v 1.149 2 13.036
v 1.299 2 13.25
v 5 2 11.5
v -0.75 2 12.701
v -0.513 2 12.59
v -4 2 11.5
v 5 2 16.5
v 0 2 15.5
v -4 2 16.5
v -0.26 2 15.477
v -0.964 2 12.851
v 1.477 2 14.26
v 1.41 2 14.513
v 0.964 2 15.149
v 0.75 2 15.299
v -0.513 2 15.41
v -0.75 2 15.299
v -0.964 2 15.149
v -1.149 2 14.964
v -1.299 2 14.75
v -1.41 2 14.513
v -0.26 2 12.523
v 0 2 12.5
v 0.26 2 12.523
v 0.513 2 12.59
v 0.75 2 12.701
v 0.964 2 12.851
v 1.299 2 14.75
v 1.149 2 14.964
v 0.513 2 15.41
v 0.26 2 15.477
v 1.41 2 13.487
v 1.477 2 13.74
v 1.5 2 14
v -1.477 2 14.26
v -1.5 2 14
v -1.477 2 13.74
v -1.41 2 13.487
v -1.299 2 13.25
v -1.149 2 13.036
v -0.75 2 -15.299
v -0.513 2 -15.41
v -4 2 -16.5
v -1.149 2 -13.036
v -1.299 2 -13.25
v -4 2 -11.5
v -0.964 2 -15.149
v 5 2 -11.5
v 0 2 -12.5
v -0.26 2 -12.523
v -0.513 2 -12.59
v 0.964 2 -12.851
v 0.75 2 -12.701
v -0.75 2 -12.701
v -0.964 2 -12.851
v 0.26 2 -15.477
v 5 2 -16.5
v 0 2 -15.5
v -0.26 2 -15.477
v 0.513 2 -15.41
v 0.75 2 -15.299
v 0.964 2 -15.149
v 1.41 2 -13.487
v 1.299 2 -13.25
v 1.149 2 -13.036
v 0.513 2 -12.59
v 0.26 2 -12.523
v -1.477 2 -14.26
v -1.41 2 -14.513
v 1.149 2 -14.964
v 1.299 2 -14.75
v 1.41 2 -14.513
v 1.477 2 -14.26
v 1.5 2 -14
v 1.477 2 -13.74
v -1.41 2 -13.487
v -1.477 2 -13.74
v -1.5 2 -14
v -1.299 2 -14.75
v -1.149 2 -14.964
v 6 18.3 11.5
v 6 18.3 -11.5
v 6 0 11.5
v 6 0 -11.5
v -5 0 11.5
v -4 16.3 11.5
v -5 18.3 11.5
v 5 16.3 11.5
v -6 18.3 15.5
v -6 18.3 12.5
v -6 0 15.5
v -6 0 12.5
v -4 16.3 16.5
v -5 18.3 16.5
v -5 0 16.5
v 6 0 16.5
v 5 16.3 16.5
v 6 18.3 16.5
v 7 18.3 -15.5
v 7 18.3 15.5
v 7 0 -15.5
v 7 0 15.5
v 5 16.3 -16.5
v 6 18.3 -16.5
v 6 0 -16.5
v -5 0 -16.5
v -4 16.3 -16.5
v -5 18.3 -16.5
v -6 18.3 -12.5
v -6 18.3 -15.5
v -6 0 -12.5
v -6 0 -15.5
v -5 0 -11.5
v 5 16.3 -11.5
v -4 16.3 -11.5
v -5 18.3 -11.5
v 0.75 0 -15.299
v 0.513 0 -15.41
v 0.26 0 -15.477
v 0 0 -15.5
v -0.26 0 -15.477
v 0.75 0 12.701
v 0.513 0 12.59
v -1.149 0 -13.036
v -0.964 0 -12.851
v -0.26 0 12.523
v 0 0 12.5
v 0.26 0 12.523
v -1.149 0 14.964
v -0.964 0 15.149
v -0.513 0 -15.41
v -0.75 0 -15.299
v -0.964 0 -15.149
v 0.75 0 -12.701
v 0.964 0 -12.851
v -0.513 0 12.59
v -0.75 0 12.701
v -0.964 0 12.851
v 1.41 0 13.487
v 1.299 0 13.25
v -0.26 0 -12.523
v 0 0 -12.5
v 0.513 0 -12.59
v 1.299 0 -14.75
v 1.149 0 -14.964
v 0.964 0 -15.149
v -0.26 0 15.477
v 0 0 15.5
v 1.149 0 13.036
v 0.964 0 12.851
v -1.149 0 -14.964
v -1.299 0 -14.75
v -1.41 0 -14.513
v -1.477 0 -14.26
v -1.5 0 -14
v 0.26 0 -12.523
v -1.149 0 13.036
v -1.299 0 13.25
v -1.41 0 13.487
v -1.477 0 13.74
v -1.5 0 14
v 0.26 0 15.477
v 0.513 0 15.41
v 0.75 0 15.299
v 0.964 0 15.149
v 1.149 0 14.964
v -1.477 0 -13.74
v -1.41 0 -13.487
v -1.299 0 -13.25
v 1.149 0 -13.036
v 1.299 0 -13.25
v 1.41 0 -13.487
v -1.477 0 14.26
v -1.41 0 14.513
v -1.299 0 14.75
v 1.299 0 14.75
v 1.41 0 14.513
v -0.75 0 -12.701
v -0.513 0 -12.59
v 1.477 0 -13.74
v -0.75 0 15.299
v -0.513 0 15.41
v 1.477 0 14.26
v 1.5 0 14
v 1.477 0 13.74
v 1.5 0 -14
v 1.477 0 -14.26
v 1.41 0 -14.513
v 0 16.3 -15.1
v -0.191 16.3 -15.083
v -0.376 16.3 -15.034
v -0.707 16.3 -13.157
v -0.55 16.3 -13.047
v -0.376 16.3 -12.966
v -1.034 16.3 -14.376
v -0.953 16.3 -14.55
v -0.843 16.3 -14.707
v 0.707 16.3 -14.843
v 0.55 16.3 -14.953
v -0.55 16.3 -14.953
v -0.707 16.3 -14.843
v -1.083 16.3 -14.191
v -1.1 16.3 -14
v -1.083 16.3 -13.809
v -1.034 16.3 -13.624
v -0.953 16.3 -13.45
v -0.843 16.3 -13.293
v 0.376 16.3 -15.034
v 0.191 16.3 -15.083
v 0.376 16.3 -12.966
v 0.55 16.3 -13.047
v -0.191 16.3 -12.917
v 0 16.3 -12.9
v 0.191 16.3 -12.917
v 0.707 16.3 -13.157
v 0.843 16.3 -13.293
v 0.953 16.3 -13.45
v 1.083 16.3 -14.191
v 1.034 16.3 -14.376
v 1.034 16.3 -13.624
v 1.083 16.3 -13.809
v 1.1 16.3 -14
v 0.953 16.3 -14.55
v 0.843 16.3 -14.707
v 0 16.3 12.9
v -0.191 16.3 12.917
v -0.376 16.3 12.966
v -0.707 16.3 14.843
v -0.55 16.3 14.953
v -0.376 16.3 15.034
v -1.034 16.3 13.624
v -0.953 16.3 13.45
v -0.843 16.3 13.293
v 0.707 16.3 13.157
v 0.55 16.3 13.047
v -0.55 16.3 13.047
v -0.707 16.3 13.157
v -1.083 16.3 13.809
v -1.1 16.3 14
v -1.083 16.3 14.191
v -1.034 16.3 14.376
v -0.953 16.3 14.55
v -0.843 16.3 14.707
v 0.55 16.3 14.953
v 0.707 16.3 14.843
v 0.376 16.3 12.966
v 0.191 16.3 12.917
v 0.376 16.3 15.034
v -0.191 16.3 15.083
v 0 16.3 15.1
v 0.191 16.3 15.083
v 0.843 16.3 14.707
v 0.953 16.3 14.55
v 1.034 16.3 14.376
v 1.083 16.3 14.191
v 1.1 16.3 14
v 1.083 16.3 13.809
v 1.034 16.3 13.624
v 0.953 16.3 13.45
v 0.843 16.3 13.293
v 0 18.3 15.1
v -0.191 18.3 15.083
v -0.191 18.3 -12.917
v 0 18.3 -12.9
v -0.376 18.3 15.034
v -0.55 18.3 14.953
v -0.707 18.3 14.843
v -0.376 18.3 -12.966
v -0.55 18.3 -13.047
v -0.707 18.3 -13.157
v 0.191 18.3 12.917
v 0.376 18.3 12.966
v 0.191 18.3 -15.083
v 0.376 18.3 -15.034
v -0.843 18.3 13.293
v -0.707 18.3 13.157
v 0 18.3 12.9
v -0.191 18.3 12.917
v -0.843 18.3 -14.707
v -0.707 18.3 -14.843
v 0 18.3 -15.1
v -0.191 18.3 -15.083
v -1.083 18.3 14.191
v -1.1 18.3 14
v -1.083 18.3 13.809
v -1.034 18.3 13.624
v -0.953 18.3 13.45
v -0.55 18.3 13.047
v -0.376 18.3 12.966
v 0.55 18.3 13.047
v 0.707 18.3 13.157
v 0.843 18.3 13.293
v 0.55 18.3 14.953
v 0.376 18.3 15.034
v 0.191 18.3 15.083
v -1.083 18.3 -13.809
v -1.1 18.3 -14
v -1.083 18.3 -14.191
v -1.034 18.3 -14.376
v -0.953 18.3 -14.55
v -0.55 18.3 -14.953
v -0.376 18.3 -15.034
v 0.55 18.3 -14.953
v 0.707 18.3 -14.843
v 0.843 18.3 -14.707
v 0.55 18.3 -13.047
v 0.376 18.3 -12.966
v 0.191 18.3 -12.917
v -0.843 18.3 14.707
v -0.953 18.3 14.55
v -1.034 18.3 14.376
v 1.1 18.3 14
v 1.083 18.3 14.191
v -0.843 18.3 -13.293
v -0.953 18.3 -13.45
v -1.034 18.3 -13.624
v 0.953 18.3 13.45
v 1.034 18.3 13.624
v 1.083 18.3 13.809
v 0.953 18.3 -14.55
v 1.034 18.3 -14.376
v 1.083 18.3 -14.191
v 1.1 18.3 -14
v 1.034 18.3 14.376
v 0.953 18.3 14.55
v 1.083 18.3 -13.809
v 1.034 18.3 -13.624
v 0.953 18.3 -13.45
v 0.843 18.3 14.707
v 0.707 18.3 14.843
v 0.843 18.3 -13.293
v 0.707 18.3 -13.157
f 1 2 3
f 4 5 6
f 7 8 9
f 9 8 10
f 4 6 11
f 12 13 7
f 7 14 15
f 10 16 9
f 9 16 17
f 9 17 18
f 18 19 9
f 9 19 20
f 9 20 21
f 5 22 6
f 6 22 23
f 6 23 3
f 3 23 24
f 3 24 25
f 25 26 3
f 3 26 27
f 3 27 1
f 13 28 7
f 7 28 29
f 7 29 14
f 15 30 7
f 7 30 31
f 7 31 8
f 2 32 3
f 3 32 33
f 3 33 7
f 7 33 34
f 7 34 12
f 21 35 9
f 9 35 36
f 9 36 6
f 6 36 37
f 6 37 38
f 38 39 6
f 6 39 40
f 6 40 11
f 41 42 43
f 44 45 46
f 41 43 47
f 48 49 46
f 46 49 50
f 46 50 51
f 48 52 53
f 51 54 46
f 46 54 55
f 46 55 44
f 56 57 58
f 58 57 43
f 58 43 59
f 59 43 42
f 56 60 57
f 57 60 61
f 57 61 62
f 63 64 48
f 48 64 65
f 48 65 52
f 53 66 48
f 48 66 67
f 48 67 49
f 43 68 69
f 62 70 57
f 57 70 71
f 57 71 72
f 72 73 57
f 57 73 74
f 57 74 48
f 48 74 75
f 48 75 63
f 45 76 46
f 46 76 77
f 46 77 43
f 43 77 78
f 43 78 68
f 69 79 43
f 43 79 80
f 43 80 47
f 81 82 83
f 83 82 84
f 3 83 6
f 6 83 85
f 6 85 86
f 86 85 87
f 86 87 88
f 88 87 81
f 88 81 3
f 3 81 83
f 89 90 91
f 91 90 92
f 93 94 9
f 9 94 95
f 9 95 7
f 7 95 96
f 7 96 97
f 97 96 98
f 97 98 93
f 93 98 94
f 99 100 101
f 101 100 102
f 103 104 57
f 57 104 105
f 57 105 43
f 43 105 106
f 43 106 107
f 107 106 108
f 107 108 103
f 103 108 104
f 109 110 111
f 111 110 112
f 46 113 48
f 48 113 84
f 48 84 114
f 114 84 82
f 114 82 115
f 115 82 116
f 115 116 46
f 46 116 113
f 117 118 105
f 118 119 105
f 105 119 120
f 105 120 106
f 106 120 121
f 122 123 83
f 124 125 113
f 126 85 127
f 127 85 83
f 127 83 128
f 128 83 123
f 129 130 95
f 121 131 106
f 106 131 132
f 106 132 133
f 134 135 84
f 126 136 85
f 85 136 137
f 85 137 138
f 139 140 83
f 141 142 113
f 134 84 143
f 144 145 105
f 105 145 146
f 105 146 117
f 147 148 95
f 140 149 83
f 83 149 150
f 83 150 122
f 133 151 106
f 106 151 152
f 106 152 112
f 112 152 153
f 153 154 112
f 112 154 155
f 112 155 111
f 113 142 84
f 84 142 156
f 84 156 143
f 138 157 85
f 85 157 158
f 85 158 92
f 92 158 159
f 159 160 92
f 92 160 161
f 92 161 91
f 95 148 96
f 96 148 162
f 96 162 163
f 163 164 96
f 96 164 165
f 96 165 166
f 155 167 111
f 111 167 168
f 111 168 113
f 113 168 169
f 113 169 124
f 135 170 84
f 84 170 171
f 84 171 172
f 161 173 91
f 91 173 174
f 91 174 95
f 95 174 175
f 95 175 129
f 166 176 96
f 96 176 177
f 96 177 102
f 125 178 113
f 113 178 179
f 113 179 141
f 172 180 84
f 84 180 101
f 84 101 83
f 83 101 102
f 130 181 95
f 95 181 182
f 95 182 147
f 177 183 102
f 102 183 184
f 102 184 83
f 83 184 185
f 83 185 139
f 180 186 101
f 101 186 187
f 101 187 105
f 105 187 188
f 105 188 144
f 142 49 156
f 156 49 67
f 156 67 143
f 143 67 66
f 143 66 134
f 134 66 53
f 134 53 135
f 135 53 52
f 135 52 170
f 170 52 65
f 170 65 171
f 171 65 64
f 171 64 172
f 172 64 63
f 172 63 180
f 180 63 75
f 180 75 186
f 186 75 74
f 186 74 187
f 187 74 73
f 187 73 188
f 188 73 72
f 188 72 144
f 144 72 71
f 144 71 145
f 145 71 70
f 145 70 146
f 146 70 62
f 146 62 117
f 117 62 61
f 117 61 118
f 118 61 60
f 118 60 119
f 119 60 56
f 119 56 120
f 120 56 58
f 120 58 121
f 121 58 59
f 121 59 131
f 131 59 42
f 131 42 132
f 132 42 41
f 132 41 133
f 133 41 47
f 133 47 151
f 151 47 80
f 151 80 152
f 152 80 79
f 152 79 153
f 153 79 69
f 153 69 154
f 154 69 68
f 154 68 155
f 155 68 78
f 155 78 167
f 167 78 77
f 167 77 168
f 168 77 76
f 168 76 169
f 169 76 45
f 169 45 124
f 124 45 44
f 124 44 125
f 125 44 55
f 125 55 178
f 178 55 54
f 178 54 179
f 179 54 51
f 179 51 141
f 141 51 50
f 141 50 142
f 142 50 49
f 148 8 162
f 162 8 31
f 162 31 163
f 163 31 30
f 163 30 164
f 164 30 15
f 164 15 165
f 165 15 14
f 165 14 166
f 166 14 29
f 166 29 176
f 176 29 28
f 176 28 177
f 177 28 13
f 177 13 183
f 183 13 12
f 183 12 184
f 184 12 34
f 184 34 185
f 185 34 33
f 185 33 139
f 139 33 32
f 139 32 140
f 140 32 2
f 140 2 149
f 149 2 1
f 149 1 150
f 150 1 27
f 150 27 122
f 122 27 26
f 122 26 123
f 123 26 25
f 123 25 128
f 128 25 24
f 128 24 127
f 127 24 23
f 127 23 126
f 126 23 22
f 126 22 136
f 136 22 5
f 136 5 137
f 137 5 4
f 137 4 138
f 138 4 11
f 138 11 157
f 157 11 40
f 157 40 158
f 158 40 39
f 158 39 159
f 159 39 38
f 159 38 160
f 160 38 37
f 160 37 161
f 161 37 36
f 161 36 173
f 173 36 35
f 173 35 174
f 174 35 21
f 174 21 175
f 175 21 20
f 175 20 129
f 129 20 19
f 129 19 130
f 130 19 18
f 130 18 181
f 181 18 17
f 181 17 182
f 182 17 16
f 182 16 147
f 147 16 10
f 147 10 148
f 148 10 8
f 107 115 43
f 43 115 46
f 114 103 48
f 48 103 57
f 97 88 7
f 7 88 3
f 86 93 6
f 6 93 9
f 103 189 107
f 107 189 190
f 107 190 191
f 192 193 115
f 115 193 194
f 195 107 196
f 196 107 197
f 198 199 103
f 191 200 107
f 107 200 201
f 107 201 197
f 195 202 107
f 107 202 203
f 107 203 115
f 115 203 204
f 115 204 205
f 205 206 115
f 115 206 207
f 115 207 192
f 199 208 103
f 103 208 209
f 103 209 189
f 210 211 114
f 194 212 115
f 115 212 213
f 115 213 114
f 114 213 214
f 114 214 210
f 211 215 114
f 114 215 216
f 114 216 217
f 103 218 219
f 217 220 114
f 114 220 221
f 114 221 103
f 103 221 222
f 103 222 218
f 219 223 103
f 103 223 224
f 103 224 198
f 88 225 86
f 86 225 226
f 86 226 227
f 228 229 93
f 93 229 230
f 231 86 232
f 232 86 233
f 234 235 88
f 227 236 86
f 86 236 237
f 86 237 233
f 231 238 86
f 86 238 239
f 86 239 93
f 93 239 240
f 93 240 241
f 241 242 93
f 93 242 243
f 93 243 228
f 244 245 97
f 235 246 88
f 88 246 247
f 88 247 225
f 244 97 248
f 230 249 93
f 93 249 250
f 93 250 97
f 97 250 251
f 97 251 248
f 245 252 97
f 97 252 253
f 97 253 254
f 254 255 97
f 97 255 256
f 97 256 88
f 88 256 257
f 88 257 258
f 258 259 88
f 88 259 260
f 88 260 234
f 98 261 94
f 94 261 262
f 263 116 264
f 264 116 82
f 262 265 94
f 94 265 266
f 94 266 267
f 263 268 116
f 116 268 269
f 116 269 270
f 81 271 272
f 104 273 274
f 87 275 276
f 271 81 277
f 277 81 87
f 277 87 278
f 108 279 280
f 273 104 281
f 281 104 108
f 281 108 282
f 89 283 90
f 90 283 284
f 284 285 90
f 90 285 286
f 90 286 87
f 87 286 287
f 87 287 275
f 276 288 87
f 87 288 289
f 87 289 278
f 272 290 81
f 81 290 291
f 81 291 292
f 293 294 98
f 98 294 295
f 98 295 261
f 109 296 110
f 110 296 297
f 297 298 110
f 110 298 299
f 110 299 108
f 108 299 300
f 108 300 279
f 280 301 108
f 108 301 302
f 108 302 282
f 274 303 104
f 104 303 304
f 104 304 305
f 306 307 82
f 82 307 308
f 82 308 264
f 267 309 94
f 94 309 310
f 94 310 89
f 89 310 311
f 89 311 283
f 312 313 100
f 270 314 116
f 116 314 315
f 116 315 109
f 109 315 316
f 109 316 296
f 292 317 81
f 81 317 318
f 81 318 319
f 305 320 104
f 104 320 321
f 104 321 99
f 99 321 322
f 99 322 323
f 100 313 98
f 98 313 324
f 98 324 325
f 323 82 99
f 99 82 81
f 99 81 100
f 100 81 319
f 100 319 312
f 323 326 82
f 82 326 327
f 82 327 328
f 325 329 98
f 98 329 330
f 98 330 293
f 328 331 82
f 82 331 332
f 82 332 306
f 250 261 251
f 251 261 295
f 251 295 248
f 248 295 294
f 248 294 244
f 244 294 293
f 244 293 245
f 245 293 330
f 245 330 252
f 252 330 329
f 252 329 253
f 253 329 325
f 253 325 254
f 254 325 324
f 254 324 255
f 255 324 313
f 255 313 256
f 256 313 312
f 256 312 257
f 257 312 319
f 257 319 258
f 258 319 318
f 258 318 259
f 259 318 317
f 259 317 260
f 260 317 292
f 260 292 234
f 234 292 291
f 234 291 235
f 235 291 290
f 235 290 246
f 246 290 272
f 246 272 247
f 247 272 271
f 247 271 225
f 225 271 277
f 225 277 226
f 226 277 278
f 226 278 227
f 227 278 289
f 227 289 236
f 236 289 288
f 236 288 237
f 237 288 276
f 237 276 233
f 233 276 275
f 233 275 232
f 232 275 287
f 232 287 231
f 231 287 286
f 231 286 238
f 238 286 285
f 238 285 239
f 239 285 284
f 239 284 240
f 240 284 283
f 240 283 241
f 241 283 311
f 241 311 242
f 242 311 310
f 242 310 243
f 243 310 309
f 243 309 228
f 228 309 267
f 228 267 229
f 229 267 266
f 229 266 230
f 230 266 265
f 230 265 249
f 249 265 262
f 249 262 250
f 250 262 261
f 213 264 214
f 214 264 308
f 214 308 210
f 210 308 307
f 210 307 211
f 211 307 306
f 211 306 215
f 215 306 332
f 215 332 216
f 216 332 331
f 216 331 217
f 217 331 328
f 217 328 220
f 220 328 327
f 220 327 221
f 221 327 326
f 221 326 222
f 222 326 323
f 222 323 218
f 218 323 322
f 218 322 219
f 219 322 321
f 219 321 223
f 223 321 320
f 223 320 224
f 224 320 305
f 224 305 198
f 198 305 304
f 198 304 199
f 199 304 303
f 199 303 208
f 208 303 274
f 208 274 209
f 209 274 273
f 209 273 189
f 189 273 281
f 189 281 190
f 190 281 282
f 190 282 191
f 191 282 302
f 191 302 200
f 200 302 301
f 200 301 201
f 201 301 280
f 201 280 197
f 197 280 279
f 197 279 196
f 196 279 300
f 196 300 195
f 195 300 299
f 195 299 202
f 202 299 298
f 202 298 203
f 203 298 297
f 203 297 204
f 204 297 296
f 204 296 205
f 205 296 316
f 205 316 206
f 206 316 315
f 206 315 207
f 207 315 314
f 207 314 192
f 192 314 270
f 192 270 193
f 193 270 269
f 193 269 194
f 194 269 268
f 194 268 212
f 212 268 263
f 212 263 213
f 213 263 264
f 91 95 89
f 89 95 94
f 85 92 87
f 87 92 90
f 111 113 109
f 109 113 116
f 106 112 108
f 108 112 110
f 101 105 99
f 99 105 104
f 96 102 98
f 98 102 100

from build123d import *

# Parameters (mm, degrees)
BOSS_EXTRUDE1_DEPTH = 2
CUT_EXTRUDE1_REACH  = 20.035
SKETCH2_R           = 1.5
SKETCH3_W           = 2
SKETCH3_H           = 5
BOSS_EXTRUDE2_DEPTH = 14.3
BOSS_EXTRUDE3_DEPTH = 2
CUT_EXTRUDE2_REACH  = 27.615
SKETCH5_R           = 1.1
CHAMFER1_SIZE       = 1


with BuildPart() as part:
    # Sketch1 → Boss-Extrude1 (new body)
    with BuildSketch(Plane(origin=(0, 0, 0), x_dir=(1, 0, 0), z_dir=(0, 1, 0))):
        Polygon((-6, -16.5), (6, -16.5), (7, -16.5), (7, 16.5), (6, 16.5), (-6, 16.5), (-6, 11.5), (6, 11.5), (6, -11.5), (-6, -11.5), align=None)
    extrude(amount=BOSS_EXTRUDE1_DEPTH)

    # Sketch2 → Cut-Extrude1 (cut, up to next)
    with BuildSketch(Plane(origin=(0, 2, 0), x_dir=(1, 0, 0), z_dir=(0, 1, 0)), mode=Mode.PRIVATE) as cut_extrude1_sk1:
        with Locations(Location((0, -14, 0), (0, 0, 270))):
            Circle(SKETCH2_R)
    cut_extrude1_tool1 = extrude(cut_extrude1_sk1.sketch, amount=-CUT_EXTRUDE1_REACH, mode=Mode.PRIVATE) & part.part
    # Sketch2 → Cut-Extrude1 (cut, up to next)
    with BuildSketch(Plane(origin=(0, 2, 0), x_dir=(1, 0, 0), z_dir=(0, 1, 0)), mode=Mode.PRIVATE) as cut_extrude1_sk2:
        with Locations(Location((0, 14, 0), (0, 0, 270))):
            Circle(SKETCH2_R)
    cut_extrude1_tool2 = extrude(cut_extrude1_sk2.sketch, amount=-CUT_EXTRUDE1_REACH, mode=Mode.PRIVATE) & part.part
    add(cut_extrude1_tool1.solids().sort_by_distance((0, 2, 14))[0], mode=Mode.SUBTRACT)
    add(cut_extrude1_tool2.solids().sort_by_distance((0, 2, -14))[0], mode=Mode.SUBTRACT)

    # Sketch3 → Boss-Extrude2 (add)
    with BuildSketch(Plane(origin=(0, 2, 0), x_dir=(1, 0, 0), z_dir=(0, 1, 0))):
        with Locations((-5, 14)):
            Rectangle(SKETCH3_W, SKETCH3_H)
        Polygon((7, 16.5), (5, 16.5), (5, 11.5), (6, 11.5), (6, -11.5), (5, -11.5), (5, -16.5), (7, -16.5), (7, -11.5), (7, 11.5), align=None)
        with Locations((-5, -14)):
            Rectangle(SKETCH3_W, SKETCH3_H)
    extrude(amount=BOSS_EXTRUDE2_DEPTH)

    # Sketch4 → Boss-Extrude3 (add)
    with BuildSketch(Plane(origin=(0, 16.3, 0), x_dir=(1, 0, 0), z_dir=(0, 1, 0))):
        Polygon((6, 11.5), (6, -11.5), (-6, -11.5), (-6, -16.5), (7, -16.5), (7, 16.5), (-6, 16.5), (-6, 11.5), align=None)
    extrude(amount=BOSS_EXTRUDE3_DEPTH)

    # Sketch5 → Cut-Extrude2 (cut, up to next)
    with BuildSketch(Plane(origin=(0, 18.3, 0), x_dir=(1, 0, 0), z_dir=(0, 1, 0)), mode=Mode.PRIVATE) as cut_extrude2_sk1:
        with Locations(Location((0, 14, 0), (0, 0, 270))):
            Circle(SKETCH5_R)
    cut_extrude2_tool1 = extrude(cut_extrude2_sk1.sketch, amount=-CUT_EXTRUDE2_REACH, mode=Mode.PRIVATE) & part.part
    # Sketch5 → Cut-Extrude2 (cut, up to next)
    with BuildSketch(Plane(origin=(0, 18.3, 0), x_dir=(1, 0, 0), z_dir=(0, 1, 0)), mode=Mode.PRIVATE) as cut_extrude2_sk2:
        with Locations(Location((0, -14, 0), (0, 0, 270))):
            Circle(SKETCH5_R)
    cut_extrude2_tool2 = extrude(cut_extrude2_sk2.sketch, amount=-CUT_EXTRUDE2_REACH, mode=Mode.PRIVATE) & part.part
    add(cut_extrude2_tool1.solids().sort_by_distance((0, 18.3, -14))[0], mode=Mode.SUBTRACT)
    add(cut_extrude2_tool2.solids().sort_by_distance((0, 18.3, 14))[0], mode=Mode.SUBTRACT)

    # Chamfer1
    chamfer1_edges = [part.edges().sort_by_distance(p)[0] for p in [
        (-6, 9.15, -11.5),
        (-6, 9.15, -16.5),
        (7, 9.15, -16.5),
        (7, 9.15, 16.5),
        (-6, 9.15, 16.5),
        (-6, 9.15, 11.5),
    ]]
    chamfer(chamfer1_edges, length=CHAMFER1_SIZE)


solid = part.part
